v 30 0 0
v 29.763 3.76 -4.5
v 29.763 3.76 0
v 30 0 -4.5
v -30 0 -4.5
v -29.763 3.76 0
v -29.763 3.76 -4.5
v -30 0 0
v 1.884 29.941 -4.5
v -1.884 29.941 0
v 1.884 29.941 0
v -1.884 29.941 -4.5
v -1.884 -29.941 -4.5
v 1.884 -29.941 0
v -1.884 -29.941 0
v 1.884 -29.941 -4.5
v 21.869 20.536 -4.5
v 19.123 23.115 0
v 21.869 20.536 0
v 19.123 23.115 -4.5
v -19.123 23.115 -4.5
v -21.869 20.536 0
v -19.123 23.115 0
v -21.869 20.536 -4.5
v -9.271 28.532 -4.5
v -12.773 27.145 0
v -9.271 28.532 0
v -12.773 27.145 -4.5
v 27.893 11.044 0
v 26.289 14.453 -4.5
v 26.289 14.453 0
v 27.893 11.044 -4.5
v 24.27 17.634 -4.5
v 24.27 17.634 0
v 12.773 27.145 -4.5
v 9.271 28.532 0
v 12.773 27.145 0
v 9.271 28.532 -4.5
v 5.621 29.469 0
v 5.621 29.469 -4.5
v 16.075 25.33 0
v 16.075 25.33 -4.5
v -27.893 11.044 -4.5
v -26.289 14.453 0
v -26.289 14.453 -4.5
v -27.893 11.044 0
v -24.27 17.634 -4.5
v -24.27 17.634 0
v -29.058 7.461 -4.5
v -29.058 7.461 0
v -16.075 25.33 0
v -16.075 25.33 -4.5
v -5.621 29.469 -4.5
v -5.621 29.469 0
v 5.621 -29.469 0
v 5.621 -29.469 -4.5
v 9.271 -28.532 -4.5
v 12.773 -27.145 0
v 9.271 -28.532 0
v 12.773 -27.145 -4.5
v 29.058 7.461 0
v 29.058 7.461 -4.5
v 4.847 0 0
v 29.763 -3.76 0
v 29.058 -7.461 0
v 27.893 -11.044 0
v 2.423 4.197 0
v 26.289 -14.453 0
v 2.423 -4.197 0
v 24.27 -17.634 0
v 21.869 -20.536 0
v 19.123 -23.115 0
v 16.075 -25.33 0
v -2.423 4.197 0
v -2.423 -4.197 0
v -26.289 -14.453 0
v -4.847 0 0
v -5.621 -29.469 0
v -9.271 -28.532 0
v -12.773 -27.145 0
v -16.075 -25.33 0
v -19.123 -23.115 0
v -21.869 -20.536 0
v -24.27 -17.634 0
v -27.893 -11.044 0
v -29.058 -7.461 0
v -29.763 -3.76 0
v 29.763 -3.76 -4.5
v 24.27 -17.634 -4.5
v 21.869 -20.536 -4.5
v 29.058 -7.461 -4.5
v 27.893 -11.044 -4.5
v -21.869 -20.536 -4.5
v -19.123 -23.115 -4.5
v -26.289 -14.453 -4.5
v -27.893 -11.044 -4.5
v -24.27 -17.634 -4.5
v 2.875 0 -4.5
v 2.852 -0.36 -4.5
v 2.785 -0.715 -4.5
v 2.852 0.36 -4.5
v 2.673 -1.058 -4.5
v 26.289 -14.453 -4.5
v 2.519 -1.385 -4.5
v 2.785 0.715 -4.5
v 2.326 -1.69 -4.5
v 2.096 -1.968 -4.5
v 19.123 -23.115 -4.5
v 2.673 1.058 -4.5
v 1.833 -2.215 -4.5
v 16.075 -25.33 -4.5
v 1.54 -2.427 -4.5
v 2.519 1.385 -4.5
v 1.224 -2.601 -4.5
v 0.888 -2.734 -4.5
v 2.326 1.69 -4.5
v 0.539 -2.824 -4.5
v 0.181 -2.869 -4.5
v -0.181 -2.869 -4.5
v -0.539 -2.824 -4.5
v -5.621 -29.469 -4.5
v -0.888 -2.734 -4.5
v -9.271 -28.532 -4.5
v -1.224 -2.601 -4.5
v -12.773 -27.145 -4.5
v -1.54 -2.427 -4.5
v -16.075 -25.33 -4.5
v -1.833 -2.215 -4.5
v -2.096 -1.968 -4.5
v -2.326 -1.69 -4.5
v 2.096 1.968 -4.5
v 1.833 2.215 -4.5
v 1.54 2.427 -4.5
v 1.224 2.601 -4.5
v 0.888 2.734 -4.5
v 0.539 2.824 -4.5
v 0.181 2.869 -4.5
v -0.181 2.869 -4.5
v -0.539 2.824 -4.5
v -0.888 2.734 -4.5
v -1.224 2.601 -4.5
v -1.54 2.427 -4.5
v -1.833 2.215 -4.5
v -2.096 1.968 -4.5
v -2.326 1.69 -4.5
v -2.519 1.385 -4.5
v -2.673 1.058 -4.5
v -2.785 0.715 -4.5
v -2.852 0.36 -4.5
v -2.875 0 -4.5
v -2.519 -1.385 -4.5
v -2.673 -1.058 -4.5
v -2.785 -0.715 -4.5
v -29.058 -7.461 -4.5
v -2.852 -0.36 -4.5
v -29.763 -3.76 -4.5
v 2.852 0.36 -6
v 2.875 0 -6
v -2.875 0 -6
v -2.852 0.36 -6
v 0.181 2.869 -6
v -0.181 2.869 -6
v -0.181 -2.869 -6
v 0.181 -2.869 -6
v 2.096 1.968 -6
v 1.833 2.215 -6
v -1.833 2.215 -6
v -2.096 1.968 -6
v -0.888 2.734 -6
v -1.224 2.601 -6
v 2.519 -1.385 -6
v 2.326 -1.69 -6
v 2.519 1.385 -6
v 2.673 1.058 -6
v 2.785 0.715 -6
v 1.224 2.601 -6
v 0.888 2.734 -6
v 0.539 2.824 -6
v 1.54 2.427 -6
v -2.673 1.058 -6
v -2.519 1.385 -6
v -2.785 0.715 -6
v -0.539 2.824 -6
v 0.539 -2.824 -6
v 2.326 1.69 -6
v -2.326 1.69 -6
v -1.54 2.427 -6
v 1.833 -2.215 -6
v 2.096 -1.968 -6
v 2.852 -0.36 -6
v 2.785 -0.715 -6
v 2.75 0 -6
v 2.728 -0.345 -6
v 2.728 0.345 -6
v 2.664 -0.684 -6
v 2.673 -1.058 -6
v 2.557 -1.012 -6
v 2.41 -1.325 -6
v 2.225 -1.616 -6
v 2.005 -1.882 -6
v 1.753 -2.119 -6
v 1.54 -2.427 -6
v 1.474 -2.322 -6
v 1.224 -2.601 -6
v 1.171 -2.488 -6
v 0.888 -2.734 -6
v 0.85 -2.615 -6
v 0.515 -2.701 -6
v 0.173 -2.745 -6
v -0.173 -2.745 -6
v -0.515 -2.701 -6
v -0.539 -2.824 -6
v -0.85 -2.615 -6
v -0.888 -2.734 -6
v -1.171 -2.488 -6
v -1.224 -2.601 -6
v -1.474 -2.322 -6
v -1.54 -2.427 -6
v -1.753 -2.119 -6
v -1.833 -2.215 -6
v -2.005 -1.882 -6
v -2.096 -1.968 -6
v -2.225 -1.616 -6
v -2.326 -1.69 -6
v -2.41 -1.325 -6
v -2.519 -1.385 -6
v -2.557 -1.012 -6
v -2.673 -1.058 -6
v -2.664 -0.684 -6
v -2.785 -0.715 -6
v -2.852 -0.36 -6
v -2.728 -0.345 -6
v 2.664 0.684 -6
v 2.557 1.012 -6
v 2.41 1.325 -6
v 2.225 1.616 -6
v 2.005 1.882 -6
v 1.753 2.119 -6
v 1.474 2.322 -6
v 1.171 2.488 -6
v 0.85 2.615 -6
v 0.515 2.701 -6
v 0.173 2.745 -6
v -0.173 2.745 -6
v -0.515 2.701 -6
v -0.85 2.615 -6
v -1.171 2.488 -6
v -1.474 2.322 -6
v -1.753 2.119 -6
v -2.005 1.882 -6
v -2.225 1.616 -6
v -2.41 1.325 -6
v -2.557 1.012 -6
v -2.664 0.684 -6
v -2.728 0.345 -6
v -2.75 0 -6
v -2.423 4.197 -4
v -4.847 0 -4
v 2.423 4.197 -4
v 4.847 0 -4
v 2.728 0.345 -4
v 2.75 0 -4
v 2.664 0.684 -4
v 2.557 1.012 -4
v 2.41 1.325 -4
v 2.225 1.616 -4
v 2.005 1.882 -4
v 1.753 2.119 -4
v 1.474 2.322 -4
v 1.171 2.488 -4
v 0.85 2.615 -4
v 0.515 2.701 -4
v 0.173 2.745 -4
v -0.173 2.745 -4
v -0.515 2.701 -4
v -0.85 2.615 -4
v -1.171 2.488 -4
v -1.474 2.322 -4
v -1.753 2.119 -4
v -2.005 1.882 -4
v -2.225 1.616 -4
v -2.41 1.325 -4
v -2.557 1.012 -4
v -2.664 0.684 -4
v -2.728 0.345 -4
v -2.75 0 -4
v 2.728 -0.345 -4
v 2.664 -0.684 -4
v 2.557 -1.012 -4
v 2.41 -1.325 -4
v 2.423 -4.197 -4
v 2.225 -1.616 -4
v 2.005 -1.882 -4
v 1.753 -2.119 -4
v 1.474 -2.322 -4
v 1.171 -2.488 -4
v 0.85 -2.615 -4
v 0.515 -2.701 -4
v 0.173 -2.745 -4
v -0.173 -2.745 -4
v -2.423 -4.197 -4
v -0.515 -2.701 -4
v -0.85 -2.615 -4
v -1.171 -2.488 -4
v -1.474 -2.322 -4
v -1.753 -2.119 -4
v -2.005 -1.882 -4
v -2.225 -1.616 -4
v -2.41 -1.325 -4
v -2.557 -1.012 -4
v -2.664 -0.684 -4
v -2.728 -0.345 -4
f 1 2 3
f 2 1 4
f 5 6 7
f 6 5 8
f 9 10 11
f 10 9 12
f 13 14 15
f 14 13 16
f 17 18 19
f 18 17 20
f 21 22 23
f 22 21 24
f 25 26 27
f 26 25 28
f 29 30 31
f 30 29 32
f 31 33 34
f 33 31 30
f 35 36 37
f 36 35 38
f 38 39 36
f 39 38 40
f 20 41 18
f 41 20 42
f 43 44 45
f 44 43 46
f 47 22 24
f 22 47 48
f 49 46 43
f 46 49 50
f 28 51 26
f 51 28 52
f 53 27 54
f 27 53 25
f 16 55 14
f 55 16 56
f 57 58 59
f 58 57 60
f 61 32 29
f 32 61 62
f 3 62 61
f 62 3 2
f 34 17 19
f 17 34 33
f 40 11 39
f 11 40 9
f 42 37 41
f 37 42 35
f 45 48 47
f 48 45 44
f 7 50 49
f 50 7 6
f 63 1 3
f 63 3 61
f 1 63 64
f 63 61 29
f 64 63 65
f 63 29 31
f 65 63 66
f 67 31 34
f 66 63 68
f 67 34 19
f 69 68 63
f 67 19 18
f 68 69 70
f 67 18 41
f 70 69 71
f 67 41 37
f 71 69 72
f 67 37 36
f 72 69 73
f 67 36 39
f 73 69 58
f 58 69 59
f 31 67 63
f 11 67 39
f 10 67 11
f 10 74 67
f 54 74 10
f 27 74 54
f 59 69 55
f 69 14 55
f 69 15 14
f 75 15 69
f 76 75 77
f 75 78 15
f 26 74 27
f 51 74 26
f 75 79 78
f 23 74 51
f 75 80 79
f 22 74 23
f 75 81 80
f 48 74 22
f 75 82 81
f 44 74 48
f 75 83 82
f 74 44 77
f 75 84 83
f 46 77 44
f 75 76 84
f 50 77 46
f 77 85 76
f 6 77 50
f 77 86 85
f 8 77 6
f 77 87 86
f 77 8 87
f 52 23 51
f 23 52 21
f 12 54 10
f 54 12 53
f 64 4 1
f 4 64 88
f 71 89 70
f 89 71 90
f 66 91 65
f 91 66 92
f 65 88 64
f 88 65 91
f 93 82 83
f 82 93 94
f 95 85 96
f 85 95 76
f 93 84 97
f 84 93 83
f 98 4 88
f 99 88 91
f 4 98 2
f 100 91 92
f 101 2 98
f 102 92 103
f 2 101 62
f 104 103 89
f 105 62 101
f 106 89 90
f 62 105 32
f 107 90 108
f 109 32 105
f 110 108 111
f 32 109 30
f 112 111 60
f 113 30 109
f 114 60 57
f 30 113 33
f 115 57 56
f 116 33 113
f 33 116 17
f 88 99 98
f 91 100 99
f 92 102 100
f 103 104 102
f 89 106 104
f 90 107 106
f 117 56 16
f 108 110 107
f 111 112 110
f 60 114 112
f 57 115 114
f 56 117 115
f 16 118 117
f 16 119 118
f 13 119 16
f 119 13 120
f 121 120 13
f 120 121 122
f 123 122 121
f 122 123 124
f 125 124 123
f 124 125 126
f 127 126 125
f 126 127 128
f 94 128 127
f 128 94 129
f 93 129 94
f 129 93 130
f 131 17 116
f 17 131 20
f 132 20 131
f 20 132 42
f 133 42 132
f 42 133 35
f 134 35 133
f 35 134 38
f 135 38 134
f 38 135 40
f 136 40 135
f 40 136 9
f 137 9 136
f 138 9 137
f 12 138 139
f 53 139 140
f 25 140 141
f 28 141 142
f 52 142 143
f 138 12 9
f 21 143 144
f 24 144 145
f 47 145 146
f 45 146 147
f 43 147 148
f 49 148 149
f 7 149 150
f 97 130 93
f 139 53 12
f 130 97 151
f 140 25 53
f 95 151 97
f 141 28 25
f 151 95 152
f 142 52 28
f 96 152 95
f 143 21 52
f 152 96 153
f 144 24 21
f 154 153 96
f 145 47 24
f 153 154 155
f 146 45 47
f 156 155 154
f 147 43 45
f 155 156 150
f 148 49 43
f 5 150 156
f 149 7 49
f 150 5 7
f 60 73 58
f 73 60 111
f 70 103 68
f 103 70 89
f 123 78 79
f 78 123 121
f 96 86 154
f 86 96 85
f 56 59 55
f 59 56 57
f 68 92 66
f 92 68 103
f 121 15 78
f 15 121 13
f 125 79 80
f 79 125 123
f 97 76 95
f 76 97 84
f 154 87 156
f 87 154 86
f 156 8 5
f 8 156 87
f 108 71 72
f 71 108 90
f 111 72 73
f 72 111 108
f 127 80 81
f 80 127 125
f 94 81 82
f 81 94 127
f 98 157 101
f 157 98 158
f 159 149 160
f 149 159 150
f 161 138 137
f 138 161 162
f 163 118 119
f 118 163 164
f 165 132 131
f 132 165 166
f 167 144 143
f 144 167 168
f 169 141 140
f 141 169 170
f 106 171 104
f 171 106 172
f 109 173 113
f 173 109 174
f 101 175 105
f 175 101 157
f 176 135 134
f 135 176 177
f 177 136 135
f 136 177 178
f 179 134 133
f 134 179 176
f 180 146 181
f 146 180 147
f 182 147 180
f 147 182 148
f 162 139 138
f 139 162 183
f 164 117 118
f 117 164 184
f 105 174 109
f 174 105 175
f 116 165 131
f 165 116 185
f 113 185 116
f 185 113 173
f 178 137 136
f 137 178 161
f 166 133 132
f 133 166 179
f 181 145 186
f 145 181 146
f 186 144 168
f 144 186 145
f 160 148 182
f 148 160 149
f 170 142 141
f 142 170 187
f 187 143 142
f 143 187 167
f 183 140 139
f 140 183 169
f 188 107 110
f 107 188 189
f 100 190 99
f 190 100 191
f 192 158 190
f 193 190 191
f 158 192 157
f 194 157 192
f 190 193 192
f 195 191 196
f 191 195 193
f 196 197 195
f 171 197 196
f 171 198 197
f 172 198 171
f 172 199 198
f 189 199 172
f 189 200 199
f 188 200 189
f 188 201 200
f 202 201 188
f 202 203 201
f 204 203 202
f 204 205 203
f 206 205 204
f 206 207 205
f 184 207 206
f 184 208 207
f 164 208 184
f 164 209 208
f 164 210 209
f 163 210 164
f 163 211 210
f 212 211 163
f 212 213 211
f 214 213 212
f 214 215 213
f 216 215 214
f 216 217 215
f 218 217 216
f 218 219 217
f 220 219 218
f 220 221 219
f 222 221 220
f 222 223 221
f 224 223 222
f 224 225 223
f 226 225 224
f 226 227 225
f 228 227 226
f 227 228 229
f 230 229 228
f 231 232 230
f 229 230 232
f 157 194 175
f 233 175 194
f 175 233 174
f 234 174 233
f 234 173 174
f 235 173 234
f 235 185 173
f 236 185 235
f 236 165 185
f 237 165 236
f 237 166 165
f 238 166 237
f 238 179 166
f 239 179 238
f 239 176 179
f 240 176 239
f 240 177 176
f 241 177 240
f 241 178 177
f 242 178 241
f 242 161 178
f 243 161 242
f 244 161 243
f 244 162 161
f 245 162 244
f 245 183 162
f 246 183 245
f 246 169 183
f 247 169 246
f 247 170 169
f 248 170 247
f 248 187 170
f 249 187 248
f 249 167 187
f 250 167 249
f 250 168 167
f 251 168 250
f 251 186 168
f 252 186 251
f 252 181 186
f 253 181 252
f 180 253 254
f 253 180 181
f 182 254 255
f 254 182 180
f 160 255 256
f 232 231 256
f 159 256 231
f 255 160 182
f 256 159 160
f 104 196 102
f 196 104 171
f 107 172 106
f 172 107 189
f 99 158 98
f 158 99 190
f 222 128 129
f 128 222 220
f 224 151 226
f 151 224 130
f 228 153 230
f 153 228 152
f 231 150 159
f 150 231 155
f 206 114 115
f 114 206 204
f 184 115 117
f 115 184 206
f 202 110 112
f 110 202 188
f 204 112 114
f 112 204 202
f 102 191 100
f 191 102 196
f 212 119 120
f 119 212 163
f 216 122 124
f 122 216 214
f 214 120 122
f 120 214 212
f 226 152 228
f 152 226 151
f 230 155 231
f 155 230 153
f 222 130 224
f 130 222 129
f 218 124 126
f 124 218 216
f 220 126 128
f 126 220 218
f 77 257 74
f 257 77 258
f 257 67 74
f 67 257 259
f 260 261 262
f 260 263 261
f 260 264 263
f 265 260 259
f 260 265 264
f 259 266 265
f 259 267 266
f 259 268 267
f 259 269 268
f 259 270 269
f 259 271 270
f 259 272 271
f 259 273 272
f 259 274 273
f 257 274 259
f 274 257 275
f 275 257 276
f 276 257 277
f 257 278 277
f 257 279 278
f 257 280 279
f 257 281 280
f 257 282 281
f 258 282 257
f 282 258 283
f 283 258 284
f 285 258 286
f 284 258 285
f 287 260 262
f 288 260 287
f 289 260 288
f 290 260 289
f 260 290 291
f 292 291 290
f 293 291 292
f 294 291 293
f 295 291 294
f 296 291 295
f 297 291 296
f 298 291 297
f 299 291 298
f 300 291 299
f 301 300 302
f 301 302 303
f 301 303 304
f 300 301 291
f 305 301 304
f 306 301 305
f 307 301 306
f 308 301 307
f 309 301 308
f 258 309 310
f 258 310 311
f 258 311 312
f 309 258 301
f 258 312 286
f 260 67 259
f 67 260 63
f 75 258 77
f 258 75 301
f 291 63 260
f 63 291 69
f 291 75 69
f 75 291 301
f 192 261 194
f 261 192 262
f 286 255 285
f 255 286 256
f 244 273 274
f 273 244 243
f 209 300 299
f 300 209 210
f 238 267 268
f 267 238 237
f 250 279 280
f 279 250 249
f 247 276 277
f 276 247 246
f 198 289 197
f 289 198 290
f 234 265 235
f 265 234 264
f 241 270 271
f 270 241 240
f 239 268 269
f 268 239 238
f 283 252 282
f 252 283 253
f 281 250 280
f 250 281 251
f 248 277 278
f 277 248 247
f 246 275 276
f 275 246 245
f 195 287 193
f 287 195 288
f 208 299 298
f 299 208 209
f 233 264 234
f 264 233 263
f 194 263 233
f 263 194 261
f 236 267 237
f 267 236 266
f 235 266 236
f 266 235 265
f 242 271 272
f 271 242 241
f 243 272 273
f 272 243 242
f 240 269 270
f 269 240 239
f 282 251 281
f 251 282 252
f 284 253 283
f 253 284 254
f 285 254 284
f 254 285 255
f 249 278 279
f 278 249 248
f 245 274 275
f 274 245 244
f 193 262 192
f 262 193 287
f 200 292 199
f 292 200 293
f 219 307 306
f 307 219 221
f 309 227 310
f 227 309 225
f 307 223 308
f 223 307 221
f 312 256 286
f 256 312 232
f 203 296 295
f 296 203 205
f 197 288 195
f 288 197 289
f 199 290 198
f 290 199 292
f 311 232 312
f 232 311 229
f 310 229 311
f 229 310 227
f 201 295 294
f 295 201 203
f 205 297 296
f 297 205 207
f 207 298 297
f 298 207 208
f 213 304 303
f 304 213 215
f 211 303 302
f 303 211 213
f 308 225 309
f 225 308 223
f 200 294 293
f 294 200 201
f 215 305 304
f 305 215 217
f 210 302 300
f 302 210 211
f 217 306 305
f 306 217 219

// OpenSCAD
$fn = 50;


difference() {
	union() {
		translate(v = [0, 0, -4.5000000000]) {
			cylinder(h = 4.5000000000, r = 30.0000000000);
		}
		translate(v = [0, 0, -6.0000000000]) {
			cylinder(h = 6, r = 2.8750000000);
		}
	}
	union() {
		translate(v = [0, 0, 0]) {
			rotate(a = [0, 0, 0]) {
				difference() {
					union() {
						translate(v = [0, 0, -4]) {
							linear_extrude(height = 4) {
								polygon(points = [[4.8468000000, 0.0000000000], [2.4234000000, 4.1974519271], [-2.4234000000, 4.1974519271], [-4.8468000000, 0.0000000000], [-2.4234000000, -4.1974519271], [2.4234000000, -4.1974519271]]);
							}
						}
					}
					union();
				}
			}
		}
		#translate(v = [0, 0, -100.0000000000]) {
			cylinder(h = 200, r = 2.7500000000);
		}
	}
}
